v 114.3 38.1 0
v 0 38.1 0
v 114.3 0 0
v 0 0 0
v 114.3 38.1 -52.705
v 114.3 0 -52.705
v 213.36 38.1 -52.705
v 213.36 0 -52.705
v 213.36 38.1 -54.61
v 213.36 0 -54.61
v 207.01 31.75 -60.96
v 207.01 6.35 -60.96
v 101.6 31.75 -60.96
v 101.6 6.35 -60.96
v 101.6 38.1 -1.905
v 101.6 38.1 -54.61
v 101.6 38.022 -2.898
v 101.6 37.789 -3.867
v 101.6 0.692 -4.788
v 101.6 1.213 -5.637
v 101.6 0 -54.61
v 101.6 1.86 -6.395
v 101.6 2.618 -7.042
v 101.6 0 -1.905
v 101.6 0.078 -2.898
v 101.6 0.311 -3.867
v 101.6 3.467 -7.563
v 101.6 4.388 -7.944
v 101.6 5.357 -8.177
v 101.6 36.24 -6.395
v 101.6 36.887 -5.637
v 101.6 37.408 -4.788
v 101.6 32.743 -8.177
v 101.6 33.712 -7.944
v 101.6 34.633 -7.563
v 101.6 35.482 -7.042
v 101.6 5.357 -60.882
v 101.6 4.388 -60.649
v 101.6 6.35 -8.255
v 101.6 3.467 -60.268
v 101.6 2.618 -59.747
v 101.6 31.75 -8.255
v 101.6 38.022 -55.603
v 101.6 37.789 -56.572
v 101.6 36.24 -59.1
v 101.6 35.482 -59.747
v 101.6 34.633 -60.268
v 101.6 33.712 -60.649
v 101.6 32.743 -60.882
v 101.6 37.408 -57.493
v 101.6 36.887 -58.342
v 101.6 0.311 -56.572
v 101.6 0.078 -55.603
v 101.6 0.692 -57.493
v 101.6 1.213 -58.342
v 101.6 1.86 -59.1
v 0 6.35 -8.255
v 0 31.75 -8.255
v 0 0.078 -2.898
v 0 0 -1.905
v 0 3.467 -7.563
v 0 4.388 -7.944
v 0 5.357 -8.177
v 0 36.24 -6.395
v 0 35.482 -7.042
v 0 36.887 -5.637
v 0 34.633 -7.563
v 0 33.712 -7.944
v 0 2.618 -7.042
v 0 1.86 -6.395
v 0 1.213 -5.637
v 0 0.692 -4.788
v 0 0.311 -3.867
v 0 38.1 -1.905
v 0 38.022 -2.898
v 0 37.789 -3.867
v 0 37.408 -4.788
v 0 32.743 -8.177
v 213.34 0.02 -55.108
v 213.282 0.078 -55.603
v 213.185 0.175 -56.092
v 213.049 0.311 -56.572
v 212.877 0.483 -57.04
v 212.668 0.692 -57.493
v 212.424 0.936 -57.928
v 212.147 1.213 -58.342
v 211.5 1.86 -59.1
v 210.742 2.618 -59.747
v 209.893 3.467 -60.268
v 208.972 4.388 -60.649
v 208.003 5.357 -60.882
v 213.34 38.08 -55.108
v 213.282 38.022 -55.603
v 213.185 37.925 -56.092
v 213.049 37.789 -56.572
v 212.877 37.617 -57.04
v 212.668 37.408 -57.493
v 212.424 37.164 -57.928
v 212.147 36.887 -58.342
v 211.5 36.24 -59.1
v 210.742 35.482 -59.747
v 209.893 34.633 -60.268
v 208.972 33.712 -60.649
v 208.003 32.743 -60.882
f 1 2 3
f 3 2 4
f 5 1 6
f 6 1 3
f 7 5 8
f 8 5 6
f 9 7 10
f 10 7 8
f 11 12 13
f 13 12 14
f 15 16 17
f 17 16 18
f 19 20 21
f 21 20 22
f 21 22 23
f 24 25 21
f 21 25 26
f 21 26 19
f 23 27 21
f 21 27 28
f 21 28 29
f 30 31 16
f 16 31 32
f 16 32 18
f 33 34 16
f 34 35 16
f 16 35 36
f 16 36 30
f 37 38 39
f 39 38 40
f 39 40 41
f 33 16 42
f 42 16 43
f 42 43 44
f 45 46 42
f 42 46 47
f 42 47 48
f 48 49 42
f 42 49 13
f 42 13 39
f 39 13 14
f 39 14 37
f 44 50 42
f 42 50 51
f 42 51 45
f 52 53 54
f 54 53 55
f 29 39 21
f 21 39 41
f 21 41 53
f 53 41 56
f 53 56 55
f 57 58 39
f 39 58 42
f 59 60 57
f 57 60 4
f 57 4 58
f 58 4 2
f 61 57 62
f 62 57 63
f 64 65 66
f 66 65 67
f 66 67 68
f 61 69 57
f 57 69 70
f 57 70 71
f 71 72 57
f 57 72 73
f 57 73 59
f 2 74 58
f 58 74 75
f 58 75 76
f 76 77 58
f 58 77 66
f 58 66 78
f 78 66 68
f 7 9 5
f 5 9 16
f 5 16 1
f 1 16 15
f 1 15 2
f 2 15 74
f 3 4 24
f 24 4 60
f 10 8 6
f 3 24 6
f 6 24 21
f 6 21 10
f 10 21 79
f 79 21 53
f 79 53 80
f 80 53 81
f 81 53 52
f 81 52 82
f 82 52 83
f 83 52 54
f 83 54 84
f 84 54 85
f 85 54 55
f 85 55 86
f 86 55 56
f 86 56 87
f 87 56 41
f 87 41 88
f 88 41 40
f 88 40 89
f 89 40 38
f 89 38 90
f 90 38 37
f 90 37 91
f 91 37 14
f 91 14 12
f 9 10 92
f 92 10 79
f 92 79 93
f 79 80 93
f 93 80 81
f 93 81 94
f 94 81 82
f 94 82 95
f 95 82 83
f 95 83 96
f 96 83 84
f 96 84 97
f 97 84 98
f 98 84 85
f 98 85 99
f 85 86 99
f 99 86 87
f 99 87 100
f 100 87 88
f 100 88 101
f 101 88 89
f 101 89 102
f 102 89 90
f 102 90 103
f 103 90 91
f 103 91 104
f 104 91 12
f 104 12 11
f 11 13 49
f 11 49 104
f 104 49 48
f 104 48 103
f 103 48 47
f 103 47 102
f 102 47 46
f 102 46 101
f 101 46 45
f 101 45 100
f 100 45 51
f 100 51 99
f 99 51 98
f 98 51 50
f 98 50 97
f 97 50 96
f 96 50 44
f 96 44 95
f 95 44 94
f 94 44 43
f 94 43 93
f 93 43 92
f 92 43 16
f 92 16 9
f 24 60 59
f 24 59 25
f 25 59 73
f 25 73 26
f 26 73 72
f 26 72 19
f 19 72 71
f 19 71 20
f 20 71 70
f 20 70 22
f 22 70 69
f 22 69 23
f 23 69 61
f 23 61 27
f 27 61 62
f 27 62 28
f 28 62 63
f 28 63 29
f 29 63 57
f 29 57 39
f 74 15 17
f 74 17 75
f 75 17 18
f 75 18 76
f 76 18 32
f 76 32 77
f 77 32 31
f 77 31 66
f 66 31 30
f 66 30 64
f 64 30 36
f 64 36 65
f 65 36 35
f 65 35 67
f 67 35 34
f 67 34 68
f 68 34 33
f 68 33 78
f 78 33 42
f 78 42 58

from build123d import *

# Parameters (mm, degrees)
SKETCH2_W           = 12.7
SKETCH2_H           = 44.45
BOSS_EXTRUDE1_DEPTH = 38.1
FILLET1_R           = 6.35


with BuildPart() as part:
    # Sketch2 → Boss-Extrude1 (new body)
    with BuildSketch(Plane(origin=(0, 0, 0), x_dir=(1, 0, 0), z_dir=(0, 1, 0))):
        Polygon((0, 8.255), (0, 0), (114.3, 0), (114.3, 8.255), (101.6, 8.255), align=None)
        with Locations((107.95, 30.48)):
            Rectangle(SKETCH2_W, SKETCH2_H)
        Polygon((101.6, 52.705), (114.3, 52.705), (213.36, 52.705), (213.36, 60.96), (101.6, 60.96), align=None)
    extrude(amount=BOSS_EXTRUDE1_DEPTH)

    # Fillet1
    fillet1_edges = [part.edges().sort_by_distance(p)[0] for p in [
        (50.8, 0, -8.255),
        (157.48, 0, -60.96),
        (213.36, 19.05, -60.96),
        (157.48, 38.1, -60.96),
        (50.8, 38.1, -8.255),
    ]]
    fillet(fillet1_edges, radius=FILLET1_R)


solid = part.part
